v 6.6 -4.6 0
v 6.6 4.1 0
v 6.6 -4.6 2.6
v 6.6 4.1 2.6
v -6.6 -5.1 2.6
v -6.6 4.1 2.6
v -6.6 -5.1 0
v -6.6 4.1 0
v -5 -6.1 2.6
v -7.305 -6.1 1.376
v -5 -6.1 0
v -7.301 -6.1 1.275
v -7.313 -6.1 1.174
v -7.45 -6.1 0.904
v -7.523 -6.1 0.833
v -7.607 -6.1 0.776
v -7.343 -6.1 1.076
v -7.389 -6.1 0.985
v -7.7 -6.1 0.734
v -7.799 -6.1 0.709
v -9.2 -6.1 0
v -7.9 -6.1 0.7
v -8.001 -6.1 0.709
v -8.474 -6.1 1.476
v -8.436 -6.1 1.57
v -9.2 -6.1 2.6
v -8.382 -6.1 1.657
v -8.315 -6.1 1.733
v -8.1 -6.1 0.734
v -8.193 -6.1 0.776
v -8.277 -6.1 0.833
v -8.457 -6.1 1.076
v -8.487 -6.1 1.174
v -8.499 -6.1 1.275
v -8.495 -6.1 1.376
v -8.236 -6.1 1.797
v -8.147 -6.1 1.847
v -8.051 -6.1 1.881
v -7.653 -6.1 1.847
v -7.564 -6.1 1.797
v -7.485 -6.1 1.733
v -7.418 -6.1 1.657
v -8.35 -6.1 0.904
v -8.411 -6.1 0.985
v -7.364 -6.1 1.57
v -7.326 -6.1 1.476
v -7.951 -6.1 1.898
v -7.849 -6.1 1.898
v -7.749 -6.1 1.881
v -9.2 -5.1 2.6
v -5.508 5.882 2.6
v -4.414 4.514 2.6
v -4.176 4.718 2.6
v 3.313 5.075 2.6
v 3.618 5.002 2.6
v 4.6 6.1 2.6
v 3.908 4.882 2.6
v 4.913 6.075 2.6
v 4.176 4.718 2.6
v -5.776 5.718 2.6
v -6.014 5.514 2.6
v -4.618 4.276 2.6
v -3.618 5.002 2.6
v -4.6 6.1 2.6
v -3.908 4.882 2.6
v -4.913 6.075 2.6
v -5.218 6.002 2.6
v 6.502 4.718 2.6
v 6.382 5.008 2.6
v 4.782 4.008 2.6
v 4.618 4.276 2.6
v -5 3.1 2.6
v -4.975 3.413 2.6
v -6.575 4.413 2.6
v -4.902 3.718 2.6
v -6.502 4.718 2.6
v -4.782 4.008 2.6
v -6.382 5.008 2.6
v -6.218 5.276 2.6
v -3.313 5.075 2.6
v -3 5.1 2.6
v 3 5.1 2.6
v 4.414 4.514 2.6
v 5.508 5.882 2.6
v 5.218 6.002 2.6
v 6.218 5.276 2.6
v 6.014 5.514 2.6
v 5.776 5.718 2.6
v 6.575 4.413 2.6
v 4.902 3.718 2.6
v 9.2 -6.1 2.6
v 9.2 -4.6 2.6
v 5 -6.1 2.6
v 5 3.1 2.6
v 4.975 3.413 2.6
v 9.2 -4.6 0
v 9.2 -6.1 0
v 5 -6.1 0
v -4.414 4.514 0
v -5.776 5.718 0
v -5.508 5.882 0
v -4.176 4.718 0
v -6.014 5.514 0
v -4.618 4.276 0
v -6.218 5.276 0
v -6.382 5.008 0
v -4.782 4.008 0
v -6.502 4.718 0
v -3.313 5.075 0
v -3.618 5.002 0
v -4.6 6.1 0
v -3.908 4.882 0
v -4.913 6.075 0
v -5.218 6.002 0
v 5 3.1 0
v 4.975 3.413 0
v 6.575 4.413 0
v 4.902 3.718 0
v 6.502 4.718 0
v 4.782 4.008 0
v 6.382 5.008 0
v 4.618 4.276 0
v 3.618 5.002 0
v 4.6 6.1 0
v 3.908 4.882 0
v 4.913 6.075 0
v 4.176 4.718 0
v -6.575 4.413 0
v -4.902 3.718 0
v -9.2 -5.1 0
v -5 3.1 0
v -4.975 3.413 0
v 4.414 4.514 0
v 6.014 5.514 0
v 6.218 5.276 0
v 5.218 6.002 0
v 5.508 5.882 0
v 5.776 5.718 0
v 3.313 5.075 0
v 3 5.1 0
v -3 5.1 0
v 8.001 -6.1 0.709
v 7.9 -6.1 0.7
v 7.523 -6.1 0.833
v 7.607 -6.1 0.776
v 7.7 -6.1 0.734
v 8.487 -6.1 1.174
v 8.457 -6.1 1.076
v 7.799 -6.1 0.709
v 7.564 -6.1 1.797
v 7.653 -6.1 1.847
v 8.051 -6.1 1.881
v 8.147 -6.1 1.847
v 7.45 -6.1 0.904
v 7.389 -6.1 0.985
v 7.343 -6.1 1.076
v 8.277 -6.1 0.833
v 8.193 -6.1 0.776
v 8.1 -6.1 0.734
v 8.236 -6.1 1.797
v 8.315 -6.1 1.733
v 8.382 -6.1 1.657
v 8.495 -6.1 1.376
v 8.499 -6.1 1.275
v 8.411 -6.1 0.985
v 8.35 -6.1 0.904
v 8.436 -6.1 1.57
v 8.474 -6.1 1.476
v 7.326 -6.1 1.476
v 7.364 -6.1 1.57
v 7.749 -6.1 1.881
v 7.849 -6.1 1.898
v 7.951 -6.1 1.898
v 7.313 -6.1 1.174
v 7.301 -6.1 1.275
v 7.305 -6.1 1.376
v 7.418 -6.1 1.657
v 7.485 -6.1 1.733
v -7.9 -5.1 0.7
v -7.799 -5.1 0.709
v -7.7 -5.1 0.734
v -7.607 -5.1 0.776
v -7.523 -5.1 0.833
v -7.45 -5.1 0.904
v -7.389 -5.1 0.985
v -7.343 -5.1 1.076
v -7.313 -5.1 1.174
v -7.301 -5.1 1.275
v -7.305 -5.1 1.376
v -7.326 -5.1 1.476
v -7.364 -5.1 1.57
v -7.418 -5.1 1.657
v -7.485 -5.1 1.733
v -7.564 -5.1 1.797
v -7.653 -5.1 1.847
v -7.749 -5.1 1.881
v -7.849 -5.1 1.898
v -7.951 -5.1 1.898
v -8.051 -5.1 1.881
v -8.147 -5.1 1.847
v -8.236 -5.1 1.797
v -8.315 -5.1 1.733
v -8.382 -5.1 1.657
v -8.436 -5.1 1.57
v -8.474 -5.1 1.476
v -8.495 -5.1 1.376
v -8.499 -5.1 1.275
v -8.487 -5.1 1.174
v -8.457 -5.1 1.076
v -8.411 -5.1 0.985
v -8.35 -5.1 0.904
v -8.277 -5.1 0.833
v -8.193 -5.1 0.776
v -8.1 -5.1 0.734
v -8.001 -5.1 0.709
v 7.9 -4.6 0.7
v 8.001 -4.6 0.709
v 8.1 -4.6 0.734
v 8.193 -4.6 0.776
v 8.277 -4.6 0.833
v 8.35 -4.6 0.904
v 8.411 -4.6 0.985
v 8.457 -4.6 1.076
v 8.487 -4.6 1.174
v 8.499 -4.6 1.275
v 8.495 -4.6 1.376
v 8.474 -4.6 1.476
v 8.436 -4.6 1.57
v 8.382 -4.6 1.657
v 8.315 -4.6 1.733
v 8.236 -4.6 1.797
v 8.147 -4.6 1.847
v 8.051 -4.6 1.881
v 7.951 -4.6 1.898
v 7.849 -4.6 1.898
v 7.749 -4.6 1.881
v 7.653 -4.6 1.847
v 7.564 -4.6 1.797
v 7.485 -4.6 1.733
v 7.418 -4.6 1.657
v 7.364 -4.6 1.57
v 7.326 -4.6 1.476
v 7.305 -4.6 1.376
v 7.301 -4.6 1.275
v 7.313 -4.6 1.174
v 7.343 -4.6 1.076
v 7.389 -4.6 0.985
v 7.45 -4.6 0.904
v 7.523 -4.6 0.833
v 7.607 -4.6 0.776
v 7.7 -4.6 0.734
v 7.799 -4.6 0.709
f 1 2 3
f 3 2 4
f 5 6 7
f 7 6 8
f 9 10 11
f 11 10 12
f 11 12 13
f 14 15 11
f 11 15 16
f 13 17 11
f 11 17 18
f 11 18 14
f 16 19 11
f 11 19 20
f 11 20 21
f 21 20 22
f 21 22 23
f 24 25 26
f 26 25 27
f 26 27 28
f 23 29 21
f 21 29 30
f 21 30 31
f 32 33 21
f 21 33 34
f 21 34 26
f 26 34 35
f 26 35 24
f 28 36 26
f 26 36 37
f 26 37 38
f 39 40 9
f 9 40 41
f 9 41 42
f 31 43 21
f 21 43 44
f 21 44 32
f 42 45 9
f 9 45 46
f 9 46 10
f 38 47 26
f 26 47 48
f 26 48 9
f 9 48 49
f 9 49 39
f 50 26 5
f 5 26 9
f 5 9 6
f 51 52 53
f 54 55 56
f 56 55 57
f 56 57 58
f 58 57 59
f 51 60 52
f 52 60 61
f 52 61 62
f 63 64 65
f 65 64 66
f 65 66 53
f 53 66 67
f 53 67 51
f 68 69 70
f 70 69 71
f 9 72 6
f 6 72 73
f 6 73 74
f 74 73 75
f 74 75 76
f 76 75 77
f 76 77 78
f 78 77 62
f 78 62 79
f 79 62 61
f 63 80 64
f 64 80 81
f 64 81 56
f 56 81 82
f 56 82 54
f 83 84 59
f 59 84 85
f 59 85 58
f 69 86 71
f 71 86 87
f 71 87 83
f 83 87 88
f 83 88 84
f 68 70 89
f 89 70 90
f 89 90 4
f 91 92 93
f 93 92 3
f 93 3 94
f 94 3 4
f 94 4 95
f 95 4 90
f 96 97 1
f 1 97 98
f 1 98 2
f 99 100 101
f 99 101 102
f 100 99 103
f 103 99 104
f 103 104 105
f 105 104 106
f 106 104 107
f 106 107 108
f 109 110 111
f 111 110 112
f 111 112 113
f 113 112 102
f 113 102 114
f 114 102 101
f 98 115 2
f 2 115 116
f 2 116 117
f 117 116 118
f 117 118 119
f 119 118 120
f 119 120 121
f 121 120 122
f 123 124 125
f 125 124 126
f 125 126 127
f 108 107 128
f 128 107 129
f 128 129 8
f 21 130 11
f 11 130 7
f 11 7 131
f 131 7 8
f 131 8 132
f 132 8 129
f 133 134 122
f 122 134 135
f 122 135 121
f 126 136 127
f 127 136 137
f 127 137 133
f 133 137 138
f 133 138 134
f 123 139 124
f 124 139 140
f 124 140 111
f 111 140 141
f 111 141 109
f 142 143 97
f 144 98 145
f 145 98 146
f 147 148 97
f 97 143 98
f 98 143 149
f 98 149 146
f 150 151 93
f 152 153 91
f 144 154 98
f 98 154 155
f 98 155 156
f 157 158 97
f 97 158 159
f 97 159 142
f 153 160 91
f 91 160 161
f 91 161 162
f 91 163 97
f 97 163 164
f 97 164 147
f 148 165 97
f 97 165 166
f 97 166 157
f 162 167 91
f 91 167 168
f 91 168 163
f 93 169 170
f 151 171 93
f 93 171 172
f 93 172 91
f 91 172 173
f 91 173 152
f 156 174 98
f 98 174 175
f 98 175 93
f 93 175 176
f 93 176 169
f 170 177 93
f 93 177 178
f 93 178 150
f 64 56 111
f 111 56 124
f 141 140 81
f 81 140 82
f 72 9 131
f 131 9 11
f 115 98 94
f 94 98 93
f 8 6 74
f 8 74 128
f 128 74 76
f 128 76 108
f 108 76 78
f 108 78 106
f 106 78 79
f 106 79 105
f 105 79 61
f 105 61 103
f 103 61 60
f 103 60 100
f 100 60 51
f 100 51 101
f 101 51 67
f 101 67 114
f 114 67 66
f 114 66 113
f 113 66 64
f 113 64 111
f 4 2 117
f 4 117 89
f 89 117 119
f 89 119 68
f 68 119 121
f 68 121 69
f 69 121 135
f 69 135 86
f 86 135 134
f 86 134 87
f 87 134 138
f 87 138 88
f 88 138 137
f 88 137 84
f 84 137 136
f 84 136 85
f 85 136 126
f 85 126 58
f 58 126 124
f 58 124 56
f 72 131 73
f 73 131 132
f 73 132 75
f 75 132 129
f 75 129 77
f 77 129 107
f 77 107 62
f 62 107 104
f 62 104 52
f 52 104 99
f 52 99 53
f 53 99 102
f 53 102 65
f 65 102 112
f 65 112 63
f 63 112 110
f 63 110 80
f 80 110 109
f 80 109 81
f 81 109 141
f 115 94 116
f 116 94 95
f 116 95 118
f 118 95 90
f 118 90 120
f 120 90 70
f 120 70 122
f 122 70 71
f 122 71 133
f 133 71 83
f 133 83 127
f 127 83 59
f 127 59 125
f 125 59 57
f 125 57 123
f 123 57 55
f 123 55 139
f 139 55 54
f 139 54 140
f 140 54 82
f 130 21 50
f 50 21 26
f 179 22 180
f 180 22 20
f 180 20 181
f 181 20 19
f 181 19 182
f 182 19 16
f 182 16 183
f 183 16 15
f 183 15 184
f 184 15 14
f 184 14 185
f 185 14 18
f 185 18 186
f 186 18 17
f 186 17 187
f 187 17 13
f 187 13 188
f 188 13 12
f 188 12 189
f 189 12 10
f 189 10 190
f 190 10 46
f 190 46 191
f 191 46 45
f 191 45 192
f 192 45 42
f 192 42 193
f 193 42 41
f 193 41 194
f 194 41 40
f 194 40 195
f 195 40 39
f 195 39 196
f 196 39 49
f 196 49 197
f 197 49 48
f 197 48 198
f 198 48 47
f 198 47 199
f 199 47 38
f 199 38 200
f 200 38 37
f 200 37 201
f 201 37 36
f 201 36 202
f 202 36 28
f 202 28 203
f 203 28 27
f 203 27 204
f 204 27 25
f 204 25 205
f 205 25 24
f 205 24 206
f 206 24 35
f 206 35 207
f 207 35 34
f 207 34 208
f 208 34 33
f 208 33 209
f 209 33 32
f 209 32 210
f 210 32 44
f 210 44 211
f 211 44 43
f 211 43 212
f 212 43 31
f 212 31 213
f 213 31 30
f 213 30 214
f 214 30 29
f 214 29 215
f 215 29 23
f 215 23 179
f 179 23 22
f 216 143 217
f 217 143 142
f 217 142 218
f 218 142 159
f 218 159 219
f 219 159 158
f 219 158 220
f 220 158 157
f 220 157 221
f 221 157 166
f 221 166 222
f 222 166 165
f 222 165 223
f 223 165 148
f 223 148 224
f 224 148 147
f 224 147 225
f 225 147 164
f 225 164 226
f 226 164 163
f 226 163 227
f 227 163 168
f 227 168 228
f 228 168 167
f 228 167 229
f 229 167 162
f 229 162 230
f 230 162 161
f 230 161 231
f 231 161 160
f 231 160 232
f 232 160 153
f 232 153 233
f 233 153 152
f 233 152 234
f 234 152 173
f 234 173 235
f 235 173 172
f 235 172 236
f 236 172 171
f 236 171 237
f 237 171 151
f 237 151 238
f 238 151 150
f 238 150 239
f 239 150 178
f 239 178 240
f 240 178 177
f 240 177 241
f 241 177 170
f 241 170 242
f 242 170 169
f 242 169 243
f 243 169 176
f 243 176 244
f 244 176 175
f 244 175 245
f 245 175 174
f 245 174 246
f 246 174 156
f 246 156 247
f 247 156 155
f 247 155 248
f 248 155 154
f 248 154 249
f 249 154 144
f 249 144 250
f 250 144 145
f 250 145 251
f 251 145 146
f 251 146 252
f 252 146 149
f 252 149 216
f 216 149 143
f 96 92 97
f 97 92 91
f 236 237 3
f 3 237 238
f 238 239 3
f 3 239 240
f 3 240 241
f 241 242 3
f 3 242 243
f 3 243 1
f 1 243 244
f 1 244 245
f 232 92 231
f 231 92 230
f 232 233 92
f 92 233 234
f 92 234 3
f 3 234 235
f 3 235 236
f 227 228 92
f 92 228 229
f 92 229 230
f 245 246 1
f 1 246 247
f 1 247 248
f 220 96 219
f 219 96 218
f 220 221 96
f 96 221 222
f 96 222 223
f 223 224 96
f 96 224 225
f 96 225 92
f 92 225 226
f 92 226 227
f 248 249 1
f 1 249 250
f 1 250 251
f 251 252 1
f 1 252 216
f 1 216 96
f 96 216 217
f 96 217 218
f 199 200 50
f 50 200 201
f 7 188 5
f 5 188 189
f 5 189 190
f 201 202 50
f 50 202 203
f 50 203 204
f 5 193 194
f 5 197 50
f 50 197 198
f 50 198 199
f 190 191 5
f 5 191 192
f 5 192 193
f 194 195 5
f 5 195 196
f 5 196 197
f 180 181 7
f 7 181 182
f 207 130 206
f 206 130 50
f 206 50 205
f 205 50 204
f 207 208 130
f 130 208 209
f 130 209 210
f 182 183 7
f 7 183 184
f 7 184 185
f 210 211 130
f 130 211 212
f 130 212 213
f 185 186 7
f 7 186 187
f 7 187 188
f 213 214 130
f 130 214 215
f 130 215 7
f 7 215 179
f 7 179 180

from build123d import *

# Parameters (mm, degrees)
EXTRUDE_1_DEPTH     = 2.6
FILLET_1_R          = 2
SKETCH_2_W          = 2.6
SKETCH_2_H          = 2.6
SKETCH_2_R          = 0.6
EXTRUDE_2_DEPTH     = 1.5
SKETCH_3_W          = 2.6
SKETCH_3_H          = 0.5
CUT_EXTRUDE_1_DEPTH = 12.340634903


with BuildPart() as part:
    # 草图1 → 凸台-拉伸1 (new body)
    with BuildSketch(Plane.XY):
        Polygon((6.6, 6.1), (-6.6, 6.1), (-6.6, -6.1), (-5, -6.1), (-5, 5.1), (5, 5.1), (5, -6.1), (6.6, -6.1), align=None)
    extrude(amount=EXTRUDE_1_DEPTH)

    # 圆角1
    fillet_1_edges = [part.edges().sort_by_distance(p)[0] for p in [
        (5, 5.1, 1.3),
        (-5, 5.1, 1.3),
        (-6.6, 6.1, 1.3),
        (6.6, 6.1, 1.3),
    ]]
    fillet(fillet_1_edges, radius=FILLET_1_R)

    # 草图2 → 凸台-拉伸2 (add)
    # profile 1 of 2: a face of its own
    with BuildSketch(Plane.XZ.offset(6.1)):
        with Locations((-7.9, 1.3)):
            Rectangle(SKETCH_2_W, SKETCH_2_H)
        with Locations(Location((-7.9, 1.3, 0), (0, 0, 270))):
            Circle(SKETCH_2_R, mode=Mode.SUBTRACT)
    # profile 2 of 2: a face of its own
    with BuildSketch(Plane.XZ.offset(6.1)):
        with Locations((7.9, 1.3)):
            Rectangle(SKETCH_2_W, SKETCH_2_H)
        with Locations(Location((7.9, 1.3, 0), (0, 0, 270))):
            Circle(SKETCH_2_R, mode=Mode.SUBTRACT)
    extrude(amount=-EXTRUDE_2_DEPTH)

    # 草图3 → 切除-拉伸1 (cut, through all)
    with BuildSketch(Plane(origin=(0, 0, 0), x_dir=(-1, 0, 0), z_dir=(0, 0, -1))):
        with Locations((7.9, -4.85)):
            Rectangle(SKETCH_3_W, SKETCH_3_H)
    extrude(amount=-CUT_EXTRUDE_1_DEPTH, mode=Mode.SUBTRACT)


solid = part.part
